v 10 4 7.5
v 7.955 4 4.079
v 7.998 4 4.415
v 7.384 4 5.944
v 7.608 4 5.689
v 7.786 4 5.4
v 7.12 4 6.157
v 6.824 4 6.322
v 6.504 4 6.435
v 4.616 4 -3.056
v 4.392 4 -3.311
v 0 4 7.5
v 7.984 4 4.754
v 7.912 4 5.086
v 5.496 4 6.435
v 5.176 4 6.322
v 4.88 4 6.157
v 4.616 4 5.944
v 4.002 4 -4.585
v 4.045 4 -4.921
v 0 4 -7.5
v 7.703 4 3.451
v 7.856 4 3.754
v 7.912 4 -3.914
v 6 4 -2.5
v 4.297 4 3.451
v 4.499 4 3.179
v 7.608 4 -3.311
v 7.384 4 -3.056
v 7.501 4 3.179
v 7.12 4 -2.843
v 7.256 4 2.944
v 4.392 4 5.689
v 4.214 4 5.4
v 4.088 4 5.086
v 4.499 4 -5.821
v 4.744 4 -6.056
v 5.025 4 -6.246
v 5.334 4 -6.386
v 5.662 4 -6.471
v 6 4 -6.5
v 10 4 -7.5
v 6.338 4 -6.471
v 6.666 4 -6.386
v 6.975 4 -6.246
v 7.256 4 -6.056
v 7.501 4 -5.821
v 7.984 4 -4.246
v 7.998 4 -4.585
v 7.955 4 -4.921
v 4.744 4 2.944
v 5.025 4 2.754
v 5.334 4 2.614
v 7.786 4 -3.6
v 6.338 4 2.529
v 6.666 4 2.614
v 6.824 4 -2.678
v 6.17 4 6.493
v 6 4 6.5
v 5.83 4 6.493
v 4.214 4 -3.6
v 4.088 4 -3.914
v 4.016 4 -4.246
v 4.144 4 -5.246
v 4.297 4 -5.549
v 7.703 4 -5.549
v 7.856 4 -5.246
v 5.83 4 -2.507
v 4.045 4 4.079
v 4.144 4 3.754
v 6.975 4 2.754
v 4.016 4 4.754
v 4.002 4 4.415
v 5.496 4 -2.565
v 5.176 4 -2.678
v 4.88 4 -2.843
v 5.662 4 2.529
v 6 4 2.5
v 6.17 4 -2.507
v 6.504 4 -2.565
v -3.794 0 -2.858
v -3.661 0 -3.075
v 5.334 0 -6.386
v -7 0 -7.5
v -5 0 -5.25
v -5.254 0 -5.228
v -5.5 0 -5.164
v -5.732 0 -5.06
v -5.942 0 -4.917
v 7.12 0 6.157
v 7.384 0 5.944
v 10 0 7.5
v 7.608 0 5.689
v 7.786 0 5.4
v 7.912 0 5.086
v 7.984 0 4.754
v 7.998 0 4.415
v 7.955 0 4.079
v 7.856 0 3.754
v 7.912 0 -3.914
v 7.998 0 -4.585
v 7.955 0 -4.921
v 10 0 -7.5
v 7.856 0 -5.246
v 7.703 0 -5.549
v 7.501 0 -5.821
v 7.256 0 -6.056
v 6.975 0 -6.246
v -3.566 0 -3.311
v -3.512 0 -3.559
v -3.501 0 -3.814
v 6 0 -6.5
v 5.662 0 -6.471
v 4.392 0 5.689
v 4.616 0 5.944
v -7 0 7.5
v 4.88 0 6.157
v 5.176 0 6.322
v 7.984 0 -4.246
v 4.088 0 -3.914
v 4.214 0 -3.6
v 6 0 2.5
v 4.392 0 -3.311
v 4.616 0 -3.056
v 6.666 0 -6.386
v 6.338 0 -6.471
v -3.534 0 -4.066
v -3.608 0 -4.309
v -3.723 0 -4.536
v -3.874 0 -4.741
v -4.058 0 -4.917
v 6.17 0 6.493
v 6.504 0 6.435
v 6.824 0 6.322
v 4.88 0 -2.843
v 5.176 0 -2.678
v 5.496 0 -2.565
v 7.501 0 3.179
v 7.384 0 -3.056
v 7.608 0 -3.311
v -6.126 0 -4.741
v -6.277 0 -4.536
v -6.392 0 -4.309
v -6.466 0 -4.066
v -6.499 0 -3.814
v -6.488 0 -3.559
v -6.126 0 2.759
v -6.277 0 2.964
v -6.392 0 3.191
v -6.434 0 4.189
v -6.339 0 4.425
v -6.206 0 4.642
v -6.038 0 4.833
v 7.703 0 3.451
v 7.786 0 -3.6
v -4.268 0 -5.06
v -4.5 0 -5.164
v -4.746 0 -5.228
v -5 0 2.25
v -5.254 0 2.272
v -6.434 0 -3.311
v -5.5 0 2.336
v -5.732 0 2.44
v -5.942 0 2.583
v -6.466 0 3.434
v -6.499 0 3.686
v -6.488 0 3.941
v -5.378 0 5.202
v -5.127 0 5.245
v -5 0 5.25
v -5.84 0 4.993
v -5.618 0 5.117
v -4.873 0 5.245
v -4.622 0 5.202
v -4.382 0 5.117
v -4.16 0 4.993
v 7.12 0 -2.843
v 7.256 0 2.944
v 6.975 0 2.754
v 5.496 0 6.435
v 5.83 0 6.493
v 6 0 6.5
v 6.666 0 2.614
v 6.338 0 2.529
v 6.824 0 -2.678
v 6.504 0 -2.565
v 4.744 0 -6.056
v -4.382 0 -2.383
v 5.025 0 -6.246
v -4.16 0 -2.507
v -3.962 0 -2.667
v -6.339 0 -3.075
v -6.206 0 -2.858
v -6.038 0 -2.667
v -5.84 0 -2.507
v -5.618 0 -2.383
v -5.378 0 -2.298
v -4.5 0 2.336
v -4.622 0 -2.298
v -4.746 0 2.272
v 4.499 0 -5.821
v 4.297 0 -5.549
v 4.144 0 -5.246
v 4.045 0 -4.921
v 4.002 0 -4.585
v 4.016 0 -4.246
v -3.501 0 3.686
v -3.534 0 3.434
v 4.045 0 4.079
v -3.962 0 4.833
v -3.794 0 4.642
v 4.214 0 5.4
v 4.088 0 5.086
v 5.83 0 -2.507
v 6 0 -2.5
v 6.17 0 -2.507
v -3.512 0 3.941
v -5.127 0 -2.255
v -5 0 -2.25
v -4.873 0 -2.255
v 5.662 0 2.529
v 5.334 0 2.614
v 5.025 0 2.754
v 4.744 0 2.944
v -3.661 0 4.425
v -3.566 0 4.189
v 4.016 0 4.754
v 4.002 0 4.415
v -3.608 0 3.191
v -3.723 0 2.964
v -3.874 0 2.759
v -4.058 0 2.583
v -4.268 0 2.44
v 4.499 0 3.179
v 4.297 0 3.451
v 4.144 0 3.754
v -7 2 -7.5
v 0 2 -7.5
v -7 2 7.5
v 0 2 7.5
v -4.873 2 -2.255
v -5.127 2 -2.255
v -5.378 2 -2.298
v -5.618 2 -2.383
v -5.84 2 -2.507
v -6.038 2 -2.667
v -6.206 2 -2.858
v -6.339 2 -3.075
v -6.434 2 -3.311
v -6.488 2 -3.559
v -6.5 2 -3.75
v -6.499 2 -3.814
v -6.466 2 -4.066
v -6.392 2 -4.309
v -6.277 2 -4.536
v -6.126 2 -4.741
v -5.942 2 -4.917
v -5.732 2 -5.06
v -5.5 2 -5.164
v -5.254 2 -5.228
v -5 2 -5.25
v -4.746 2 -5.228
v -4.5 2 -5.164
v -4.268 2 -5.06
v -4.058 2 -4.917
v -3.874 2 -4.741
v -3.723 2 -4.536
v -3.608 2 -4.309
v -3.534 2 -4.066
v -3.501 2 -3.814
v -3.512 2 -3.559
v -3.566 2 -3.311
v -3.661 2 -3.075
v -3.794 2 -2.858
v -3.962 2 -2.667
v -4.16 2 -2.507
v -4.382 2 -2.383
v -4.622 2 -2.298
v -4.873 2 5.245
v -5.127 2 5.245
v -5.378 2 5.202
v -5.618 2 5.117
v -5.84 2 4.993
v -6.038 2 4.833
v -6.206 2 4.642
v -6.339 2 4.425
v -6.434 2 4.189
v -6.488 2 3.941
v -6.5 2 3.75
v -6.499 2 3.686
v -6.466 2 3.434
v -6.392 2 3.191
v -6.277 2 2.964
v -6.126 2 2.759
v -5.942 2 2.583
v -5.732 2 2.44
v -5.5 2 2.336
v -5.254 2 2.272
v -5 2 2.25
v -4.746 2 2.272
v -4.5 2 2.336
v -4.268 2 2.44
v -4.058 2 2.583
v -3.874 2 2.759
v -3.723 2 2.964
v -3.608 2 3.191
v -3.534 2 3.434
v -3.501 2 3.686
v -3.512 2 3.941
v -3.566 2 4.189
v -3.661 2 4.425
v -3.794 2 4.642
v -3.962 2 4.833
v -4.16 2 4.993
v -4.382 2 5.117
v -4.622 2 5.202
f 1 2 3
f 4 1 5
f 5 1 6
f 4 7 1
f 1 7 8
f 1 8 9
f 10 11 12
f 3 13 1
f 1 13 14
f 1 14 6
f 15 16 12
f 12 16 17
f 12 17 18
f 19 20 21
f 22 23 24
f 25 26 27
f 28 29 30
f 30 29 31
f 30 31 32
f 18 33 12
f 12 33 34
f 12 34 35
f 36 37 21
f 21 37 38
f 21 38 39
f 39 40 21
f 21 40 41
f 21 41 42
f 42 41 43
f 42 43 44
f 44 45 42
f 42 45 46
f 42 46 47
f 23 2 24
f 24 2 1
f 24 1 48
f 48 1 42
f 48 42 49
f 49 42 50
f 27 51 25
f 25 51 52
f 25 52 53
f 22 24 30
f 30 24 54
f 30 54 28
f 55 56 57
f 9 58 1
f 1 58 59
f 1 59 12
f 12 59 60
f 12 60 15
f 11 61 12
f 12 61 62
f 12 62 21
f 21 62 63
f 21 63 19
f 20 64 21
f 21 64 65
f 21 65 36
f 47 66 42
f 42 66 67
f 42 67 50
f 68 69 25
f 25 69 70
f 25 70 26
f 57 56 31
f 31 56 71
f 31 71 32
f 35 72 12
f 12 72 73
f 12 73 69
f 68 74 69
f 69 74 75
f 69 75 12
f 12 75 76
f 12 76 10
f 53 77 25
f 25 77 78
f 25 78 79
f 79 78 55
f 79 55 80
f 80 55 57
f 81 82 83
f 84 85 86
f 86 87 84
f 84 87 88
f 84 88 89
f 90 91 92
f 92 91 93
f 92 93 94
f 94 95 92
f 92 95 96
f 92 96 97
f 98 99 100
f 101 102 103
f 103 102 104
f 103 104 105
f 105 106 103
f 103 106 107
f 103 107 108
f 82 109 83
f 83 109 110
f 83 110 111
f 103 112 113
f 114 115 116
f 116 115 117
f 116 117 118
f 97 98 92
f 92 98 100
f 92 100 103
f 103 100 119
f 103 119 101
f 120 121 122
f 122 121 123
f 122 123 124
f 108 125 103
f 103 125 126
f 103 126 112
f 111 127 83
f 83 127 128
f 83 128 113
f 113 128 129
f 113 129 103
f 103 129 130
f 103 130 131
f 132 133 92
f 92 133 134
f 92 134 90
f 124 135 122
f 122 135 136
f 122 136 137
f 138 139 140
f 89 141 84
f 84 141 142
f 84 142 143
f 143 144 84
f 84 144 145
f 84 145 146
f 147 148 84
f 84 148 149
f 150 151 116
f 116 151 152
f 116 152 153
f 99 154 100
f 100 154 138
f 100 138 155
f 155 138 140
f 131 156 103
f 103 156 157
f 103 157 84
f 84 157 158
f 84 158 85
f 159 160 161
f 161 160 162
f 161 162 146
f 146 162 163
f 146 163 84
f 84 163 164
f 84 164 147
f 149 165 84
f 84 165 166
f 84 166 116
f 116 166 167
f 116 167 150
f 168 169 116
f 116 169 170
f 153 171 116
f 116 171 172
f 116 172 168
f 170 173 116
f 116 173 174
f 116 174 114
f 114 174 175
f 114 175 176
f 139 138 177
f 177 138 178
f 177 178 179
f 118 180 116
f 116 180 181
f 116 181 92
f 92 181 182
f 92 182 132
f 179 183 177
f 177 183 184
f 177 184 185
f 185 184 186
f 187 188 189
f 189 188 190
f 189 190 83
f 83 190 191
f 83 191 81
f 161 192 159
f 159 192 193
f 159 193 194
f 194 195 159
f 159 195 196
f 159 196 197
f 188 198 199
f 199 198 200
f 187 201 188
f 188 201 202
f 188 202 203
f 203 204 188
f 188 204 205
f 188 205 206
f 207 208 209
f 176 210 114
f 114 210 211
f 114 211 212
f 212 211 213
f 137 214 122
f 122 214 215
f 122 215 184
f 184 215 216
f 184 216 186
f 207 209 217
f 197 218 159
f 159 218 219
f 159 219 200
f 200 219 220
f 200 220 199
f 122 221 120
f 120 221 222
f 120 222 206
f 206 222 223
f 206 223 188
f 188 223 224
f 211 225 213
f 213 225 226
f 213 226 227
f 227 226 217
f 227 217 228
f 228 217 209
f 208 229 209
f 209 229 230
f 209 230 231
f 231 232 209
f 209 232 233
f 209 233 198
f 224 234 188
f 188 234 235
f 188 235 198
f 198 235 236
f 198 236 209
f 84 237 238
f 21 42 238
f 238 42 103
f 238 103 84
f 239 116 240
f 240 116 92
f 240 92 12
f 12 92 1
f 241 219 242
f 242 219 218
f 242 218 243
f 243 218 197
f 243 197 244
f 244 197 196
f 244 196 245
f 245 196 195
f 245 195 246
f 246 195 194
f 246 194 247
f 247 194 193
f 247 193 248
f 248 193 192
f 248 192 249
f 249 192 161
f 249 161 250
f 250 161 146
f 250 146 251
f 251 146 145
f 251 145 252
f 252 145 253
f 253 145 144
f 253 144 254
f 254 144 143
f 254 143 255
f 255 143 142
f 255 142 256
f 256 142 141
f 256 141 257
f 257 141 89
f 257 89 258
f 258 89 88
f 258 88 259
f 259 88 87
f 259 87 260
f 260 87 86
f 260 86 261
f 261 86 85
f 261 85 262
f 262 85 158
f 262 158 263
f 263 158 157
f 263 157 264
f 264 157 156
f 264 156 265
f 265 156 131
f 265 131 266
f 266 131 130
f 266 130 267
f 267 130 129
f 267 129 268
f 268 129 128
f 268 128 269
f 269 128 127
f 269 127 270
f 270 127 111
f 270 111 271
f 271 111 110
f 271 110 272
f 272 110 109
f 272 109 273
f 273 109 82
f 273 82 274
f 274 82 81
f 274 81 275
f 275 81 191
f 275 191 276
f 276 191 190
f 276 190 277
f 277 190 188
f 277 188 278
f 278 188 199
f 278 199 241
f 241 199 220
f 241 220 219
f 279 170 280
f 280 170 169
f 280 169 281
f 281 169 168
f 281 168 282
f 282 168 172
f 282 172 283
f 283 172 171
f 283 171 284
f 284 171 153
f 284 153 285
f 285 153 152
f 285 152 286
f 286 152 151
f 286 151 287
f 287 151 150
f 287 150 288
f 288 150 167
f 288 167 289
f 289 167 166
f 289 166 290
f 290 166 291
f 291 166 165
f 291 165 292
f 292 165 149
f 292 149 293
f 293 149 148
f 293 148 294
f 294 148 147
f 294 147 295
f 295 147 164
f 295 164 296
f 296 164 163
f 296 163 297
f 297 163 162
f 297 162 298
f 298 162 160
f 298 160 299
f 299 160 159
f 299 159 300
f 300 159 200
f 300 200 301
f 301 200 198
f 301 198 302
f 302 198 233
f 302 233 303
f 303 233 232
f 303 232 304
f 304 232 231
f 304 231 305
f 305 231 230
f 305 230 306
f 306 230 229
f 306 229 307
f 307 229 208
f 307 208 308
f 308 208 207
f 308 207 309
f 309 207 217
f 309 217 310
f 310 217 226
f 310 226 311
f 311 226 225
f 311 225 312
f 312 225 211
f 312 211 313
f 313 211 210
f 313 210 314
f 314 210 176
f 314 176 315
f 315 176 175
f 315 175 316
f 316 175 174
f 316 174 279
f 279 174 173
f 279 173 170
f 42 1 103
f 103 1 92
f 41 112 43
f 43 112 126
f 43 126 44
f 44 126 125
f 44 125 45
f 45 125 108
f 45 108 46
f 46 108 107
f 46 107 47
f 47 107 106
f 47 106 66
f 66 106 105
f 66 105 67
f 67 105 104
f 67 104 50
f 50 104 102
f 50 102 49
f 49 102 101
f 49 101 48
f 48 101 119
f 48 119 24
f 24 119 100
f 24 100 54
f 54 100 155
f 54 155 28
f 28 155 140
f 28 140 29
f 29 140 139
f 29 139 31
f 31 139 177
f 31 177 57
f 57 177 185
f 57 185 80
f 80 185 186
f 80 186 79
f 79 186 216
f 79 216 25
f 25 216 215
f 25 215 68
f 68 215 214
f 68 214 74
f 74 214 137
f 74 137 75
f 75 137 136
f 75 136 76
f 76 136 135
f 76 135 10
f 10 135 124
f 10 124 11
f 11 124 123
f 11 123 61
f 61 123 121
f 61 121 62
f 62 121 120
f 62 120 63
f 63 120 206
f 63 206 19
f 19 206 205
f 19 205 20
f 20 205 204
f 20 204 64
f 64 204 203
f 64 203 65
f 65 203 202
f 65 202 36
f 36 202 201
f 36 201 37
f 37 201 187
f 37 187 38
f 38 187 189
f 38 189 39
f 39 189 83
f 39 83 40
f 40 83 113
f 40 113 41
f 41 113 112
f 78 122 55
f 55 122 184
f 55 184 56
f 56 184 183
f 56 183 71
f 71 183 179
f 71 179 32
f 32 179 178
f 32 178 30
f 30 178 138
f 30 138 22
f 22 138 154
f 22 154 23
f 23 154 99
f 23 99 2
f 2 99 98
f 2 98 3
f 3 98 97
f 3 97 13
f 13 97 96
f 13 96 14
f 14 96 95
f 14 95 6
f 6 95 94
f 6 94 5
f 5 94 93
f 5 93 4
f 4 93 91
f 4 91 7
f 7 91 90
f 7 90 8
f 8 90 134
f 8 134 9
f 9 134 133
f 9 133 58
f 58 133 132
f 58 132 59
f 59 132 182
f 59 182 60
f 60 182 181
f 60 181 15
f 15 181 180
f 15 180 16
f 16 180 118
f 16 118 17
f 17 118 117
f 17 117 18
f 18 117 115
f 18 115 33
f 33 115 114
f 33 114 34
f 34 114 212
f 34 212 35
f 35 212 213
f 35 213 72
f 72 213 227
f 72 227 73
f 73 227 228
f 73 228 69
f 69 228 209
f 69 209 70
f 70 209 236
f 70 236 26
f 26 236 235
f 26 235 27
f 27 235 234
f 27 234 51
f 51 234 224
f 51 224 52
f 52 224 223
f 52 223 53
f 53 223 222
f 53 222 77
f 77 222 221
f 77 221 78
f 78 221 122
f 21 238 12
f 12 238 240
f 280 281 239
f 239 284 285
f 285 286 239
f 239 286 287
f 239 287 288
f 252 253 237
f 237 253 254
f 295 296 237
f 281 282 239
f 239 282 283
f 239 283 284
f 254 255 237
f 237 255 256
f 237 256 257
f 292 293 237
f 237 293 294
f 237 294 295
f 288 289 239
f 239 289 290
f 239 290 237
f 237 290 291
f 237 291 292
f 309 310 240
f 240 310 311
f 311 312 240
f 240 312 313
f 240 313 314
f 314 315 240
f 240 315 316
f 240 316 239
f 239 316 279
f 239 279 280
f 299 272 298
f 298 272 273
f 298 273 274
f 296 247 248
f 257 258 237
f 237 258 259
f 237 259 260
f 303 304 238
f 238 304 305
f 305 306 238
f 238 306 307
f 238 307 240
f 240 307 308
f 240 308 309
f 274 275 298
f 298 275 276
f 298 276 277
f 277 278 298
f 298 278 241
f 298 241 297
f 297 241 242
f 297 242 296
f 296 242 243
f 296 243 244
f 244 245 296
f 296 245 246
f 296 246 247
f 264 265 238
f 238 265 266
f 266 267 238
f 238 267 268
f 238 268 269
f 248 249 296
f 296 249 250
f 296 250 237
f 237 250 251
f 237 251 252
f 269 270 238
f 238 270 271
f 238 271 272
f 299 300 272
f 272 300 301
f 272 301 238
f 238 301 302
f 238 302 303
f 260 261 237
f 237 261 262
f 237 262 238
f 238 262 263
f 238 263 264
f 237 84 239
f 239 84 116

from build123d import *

# Parameters (mm, degrees)
CROQUIS1_W              = 20
CROQUIS1_H              = 15
CROQUIS1_R              = 1.5
CROQUIS1_R_2            = 2
SALIENTE_EXTRUIR1_DEPTH = 4
CORTAR_EXTRUIR1_DEPTH   = 16


with BuildPart() as part:
    # Croquis1 → Saliente-Extruir1 (new body)
    with BuildSketch(Plane(origin=(0, 0, 0), x_dir=(1, 0, 0), z_dir=(0, 1, 0))):
        Rectangle(CROQUIS1_W, CROQUIS1_H)
        with Locations((-5, 3.75)):
            Circle(CROQUIS1_R, mode=Mode.SUBTRACT)
        with Locations((-5, -3.75)):
            Circle(CROQUIS1_R, mode=Mode.SUBTRACT)
        with Locations((6, 4.5)):
            Circle(CROQUIS1_R_2, mode=Mode.SUBTRACT)
        with Locations((6, -4.5)):
            Circle(CROQUIS1_R_2, mode=Mode.SUBTRACT)
    extrude(amount=SALIENTE_EXTRUIR1_DEPTH)

    # Croquis2 → Cortar-Extruir1 (cut, through all)
    with BuildSketch(Plane(origin=(0, -3.5, 7.5), x_dir=(1, 0, 0), z_dir=(0, 0, -1))):
        Polygon((-10, -7.5), (0, -7.5), (0, -5.5), (-7, -5.5), (-7, -3.5), (-10, -3.5), align=None)
    extrude(amount=CORTAR_EXTRUIR1_DEPTH, mode=Mode.SUBTRACT)


solid = part.part
